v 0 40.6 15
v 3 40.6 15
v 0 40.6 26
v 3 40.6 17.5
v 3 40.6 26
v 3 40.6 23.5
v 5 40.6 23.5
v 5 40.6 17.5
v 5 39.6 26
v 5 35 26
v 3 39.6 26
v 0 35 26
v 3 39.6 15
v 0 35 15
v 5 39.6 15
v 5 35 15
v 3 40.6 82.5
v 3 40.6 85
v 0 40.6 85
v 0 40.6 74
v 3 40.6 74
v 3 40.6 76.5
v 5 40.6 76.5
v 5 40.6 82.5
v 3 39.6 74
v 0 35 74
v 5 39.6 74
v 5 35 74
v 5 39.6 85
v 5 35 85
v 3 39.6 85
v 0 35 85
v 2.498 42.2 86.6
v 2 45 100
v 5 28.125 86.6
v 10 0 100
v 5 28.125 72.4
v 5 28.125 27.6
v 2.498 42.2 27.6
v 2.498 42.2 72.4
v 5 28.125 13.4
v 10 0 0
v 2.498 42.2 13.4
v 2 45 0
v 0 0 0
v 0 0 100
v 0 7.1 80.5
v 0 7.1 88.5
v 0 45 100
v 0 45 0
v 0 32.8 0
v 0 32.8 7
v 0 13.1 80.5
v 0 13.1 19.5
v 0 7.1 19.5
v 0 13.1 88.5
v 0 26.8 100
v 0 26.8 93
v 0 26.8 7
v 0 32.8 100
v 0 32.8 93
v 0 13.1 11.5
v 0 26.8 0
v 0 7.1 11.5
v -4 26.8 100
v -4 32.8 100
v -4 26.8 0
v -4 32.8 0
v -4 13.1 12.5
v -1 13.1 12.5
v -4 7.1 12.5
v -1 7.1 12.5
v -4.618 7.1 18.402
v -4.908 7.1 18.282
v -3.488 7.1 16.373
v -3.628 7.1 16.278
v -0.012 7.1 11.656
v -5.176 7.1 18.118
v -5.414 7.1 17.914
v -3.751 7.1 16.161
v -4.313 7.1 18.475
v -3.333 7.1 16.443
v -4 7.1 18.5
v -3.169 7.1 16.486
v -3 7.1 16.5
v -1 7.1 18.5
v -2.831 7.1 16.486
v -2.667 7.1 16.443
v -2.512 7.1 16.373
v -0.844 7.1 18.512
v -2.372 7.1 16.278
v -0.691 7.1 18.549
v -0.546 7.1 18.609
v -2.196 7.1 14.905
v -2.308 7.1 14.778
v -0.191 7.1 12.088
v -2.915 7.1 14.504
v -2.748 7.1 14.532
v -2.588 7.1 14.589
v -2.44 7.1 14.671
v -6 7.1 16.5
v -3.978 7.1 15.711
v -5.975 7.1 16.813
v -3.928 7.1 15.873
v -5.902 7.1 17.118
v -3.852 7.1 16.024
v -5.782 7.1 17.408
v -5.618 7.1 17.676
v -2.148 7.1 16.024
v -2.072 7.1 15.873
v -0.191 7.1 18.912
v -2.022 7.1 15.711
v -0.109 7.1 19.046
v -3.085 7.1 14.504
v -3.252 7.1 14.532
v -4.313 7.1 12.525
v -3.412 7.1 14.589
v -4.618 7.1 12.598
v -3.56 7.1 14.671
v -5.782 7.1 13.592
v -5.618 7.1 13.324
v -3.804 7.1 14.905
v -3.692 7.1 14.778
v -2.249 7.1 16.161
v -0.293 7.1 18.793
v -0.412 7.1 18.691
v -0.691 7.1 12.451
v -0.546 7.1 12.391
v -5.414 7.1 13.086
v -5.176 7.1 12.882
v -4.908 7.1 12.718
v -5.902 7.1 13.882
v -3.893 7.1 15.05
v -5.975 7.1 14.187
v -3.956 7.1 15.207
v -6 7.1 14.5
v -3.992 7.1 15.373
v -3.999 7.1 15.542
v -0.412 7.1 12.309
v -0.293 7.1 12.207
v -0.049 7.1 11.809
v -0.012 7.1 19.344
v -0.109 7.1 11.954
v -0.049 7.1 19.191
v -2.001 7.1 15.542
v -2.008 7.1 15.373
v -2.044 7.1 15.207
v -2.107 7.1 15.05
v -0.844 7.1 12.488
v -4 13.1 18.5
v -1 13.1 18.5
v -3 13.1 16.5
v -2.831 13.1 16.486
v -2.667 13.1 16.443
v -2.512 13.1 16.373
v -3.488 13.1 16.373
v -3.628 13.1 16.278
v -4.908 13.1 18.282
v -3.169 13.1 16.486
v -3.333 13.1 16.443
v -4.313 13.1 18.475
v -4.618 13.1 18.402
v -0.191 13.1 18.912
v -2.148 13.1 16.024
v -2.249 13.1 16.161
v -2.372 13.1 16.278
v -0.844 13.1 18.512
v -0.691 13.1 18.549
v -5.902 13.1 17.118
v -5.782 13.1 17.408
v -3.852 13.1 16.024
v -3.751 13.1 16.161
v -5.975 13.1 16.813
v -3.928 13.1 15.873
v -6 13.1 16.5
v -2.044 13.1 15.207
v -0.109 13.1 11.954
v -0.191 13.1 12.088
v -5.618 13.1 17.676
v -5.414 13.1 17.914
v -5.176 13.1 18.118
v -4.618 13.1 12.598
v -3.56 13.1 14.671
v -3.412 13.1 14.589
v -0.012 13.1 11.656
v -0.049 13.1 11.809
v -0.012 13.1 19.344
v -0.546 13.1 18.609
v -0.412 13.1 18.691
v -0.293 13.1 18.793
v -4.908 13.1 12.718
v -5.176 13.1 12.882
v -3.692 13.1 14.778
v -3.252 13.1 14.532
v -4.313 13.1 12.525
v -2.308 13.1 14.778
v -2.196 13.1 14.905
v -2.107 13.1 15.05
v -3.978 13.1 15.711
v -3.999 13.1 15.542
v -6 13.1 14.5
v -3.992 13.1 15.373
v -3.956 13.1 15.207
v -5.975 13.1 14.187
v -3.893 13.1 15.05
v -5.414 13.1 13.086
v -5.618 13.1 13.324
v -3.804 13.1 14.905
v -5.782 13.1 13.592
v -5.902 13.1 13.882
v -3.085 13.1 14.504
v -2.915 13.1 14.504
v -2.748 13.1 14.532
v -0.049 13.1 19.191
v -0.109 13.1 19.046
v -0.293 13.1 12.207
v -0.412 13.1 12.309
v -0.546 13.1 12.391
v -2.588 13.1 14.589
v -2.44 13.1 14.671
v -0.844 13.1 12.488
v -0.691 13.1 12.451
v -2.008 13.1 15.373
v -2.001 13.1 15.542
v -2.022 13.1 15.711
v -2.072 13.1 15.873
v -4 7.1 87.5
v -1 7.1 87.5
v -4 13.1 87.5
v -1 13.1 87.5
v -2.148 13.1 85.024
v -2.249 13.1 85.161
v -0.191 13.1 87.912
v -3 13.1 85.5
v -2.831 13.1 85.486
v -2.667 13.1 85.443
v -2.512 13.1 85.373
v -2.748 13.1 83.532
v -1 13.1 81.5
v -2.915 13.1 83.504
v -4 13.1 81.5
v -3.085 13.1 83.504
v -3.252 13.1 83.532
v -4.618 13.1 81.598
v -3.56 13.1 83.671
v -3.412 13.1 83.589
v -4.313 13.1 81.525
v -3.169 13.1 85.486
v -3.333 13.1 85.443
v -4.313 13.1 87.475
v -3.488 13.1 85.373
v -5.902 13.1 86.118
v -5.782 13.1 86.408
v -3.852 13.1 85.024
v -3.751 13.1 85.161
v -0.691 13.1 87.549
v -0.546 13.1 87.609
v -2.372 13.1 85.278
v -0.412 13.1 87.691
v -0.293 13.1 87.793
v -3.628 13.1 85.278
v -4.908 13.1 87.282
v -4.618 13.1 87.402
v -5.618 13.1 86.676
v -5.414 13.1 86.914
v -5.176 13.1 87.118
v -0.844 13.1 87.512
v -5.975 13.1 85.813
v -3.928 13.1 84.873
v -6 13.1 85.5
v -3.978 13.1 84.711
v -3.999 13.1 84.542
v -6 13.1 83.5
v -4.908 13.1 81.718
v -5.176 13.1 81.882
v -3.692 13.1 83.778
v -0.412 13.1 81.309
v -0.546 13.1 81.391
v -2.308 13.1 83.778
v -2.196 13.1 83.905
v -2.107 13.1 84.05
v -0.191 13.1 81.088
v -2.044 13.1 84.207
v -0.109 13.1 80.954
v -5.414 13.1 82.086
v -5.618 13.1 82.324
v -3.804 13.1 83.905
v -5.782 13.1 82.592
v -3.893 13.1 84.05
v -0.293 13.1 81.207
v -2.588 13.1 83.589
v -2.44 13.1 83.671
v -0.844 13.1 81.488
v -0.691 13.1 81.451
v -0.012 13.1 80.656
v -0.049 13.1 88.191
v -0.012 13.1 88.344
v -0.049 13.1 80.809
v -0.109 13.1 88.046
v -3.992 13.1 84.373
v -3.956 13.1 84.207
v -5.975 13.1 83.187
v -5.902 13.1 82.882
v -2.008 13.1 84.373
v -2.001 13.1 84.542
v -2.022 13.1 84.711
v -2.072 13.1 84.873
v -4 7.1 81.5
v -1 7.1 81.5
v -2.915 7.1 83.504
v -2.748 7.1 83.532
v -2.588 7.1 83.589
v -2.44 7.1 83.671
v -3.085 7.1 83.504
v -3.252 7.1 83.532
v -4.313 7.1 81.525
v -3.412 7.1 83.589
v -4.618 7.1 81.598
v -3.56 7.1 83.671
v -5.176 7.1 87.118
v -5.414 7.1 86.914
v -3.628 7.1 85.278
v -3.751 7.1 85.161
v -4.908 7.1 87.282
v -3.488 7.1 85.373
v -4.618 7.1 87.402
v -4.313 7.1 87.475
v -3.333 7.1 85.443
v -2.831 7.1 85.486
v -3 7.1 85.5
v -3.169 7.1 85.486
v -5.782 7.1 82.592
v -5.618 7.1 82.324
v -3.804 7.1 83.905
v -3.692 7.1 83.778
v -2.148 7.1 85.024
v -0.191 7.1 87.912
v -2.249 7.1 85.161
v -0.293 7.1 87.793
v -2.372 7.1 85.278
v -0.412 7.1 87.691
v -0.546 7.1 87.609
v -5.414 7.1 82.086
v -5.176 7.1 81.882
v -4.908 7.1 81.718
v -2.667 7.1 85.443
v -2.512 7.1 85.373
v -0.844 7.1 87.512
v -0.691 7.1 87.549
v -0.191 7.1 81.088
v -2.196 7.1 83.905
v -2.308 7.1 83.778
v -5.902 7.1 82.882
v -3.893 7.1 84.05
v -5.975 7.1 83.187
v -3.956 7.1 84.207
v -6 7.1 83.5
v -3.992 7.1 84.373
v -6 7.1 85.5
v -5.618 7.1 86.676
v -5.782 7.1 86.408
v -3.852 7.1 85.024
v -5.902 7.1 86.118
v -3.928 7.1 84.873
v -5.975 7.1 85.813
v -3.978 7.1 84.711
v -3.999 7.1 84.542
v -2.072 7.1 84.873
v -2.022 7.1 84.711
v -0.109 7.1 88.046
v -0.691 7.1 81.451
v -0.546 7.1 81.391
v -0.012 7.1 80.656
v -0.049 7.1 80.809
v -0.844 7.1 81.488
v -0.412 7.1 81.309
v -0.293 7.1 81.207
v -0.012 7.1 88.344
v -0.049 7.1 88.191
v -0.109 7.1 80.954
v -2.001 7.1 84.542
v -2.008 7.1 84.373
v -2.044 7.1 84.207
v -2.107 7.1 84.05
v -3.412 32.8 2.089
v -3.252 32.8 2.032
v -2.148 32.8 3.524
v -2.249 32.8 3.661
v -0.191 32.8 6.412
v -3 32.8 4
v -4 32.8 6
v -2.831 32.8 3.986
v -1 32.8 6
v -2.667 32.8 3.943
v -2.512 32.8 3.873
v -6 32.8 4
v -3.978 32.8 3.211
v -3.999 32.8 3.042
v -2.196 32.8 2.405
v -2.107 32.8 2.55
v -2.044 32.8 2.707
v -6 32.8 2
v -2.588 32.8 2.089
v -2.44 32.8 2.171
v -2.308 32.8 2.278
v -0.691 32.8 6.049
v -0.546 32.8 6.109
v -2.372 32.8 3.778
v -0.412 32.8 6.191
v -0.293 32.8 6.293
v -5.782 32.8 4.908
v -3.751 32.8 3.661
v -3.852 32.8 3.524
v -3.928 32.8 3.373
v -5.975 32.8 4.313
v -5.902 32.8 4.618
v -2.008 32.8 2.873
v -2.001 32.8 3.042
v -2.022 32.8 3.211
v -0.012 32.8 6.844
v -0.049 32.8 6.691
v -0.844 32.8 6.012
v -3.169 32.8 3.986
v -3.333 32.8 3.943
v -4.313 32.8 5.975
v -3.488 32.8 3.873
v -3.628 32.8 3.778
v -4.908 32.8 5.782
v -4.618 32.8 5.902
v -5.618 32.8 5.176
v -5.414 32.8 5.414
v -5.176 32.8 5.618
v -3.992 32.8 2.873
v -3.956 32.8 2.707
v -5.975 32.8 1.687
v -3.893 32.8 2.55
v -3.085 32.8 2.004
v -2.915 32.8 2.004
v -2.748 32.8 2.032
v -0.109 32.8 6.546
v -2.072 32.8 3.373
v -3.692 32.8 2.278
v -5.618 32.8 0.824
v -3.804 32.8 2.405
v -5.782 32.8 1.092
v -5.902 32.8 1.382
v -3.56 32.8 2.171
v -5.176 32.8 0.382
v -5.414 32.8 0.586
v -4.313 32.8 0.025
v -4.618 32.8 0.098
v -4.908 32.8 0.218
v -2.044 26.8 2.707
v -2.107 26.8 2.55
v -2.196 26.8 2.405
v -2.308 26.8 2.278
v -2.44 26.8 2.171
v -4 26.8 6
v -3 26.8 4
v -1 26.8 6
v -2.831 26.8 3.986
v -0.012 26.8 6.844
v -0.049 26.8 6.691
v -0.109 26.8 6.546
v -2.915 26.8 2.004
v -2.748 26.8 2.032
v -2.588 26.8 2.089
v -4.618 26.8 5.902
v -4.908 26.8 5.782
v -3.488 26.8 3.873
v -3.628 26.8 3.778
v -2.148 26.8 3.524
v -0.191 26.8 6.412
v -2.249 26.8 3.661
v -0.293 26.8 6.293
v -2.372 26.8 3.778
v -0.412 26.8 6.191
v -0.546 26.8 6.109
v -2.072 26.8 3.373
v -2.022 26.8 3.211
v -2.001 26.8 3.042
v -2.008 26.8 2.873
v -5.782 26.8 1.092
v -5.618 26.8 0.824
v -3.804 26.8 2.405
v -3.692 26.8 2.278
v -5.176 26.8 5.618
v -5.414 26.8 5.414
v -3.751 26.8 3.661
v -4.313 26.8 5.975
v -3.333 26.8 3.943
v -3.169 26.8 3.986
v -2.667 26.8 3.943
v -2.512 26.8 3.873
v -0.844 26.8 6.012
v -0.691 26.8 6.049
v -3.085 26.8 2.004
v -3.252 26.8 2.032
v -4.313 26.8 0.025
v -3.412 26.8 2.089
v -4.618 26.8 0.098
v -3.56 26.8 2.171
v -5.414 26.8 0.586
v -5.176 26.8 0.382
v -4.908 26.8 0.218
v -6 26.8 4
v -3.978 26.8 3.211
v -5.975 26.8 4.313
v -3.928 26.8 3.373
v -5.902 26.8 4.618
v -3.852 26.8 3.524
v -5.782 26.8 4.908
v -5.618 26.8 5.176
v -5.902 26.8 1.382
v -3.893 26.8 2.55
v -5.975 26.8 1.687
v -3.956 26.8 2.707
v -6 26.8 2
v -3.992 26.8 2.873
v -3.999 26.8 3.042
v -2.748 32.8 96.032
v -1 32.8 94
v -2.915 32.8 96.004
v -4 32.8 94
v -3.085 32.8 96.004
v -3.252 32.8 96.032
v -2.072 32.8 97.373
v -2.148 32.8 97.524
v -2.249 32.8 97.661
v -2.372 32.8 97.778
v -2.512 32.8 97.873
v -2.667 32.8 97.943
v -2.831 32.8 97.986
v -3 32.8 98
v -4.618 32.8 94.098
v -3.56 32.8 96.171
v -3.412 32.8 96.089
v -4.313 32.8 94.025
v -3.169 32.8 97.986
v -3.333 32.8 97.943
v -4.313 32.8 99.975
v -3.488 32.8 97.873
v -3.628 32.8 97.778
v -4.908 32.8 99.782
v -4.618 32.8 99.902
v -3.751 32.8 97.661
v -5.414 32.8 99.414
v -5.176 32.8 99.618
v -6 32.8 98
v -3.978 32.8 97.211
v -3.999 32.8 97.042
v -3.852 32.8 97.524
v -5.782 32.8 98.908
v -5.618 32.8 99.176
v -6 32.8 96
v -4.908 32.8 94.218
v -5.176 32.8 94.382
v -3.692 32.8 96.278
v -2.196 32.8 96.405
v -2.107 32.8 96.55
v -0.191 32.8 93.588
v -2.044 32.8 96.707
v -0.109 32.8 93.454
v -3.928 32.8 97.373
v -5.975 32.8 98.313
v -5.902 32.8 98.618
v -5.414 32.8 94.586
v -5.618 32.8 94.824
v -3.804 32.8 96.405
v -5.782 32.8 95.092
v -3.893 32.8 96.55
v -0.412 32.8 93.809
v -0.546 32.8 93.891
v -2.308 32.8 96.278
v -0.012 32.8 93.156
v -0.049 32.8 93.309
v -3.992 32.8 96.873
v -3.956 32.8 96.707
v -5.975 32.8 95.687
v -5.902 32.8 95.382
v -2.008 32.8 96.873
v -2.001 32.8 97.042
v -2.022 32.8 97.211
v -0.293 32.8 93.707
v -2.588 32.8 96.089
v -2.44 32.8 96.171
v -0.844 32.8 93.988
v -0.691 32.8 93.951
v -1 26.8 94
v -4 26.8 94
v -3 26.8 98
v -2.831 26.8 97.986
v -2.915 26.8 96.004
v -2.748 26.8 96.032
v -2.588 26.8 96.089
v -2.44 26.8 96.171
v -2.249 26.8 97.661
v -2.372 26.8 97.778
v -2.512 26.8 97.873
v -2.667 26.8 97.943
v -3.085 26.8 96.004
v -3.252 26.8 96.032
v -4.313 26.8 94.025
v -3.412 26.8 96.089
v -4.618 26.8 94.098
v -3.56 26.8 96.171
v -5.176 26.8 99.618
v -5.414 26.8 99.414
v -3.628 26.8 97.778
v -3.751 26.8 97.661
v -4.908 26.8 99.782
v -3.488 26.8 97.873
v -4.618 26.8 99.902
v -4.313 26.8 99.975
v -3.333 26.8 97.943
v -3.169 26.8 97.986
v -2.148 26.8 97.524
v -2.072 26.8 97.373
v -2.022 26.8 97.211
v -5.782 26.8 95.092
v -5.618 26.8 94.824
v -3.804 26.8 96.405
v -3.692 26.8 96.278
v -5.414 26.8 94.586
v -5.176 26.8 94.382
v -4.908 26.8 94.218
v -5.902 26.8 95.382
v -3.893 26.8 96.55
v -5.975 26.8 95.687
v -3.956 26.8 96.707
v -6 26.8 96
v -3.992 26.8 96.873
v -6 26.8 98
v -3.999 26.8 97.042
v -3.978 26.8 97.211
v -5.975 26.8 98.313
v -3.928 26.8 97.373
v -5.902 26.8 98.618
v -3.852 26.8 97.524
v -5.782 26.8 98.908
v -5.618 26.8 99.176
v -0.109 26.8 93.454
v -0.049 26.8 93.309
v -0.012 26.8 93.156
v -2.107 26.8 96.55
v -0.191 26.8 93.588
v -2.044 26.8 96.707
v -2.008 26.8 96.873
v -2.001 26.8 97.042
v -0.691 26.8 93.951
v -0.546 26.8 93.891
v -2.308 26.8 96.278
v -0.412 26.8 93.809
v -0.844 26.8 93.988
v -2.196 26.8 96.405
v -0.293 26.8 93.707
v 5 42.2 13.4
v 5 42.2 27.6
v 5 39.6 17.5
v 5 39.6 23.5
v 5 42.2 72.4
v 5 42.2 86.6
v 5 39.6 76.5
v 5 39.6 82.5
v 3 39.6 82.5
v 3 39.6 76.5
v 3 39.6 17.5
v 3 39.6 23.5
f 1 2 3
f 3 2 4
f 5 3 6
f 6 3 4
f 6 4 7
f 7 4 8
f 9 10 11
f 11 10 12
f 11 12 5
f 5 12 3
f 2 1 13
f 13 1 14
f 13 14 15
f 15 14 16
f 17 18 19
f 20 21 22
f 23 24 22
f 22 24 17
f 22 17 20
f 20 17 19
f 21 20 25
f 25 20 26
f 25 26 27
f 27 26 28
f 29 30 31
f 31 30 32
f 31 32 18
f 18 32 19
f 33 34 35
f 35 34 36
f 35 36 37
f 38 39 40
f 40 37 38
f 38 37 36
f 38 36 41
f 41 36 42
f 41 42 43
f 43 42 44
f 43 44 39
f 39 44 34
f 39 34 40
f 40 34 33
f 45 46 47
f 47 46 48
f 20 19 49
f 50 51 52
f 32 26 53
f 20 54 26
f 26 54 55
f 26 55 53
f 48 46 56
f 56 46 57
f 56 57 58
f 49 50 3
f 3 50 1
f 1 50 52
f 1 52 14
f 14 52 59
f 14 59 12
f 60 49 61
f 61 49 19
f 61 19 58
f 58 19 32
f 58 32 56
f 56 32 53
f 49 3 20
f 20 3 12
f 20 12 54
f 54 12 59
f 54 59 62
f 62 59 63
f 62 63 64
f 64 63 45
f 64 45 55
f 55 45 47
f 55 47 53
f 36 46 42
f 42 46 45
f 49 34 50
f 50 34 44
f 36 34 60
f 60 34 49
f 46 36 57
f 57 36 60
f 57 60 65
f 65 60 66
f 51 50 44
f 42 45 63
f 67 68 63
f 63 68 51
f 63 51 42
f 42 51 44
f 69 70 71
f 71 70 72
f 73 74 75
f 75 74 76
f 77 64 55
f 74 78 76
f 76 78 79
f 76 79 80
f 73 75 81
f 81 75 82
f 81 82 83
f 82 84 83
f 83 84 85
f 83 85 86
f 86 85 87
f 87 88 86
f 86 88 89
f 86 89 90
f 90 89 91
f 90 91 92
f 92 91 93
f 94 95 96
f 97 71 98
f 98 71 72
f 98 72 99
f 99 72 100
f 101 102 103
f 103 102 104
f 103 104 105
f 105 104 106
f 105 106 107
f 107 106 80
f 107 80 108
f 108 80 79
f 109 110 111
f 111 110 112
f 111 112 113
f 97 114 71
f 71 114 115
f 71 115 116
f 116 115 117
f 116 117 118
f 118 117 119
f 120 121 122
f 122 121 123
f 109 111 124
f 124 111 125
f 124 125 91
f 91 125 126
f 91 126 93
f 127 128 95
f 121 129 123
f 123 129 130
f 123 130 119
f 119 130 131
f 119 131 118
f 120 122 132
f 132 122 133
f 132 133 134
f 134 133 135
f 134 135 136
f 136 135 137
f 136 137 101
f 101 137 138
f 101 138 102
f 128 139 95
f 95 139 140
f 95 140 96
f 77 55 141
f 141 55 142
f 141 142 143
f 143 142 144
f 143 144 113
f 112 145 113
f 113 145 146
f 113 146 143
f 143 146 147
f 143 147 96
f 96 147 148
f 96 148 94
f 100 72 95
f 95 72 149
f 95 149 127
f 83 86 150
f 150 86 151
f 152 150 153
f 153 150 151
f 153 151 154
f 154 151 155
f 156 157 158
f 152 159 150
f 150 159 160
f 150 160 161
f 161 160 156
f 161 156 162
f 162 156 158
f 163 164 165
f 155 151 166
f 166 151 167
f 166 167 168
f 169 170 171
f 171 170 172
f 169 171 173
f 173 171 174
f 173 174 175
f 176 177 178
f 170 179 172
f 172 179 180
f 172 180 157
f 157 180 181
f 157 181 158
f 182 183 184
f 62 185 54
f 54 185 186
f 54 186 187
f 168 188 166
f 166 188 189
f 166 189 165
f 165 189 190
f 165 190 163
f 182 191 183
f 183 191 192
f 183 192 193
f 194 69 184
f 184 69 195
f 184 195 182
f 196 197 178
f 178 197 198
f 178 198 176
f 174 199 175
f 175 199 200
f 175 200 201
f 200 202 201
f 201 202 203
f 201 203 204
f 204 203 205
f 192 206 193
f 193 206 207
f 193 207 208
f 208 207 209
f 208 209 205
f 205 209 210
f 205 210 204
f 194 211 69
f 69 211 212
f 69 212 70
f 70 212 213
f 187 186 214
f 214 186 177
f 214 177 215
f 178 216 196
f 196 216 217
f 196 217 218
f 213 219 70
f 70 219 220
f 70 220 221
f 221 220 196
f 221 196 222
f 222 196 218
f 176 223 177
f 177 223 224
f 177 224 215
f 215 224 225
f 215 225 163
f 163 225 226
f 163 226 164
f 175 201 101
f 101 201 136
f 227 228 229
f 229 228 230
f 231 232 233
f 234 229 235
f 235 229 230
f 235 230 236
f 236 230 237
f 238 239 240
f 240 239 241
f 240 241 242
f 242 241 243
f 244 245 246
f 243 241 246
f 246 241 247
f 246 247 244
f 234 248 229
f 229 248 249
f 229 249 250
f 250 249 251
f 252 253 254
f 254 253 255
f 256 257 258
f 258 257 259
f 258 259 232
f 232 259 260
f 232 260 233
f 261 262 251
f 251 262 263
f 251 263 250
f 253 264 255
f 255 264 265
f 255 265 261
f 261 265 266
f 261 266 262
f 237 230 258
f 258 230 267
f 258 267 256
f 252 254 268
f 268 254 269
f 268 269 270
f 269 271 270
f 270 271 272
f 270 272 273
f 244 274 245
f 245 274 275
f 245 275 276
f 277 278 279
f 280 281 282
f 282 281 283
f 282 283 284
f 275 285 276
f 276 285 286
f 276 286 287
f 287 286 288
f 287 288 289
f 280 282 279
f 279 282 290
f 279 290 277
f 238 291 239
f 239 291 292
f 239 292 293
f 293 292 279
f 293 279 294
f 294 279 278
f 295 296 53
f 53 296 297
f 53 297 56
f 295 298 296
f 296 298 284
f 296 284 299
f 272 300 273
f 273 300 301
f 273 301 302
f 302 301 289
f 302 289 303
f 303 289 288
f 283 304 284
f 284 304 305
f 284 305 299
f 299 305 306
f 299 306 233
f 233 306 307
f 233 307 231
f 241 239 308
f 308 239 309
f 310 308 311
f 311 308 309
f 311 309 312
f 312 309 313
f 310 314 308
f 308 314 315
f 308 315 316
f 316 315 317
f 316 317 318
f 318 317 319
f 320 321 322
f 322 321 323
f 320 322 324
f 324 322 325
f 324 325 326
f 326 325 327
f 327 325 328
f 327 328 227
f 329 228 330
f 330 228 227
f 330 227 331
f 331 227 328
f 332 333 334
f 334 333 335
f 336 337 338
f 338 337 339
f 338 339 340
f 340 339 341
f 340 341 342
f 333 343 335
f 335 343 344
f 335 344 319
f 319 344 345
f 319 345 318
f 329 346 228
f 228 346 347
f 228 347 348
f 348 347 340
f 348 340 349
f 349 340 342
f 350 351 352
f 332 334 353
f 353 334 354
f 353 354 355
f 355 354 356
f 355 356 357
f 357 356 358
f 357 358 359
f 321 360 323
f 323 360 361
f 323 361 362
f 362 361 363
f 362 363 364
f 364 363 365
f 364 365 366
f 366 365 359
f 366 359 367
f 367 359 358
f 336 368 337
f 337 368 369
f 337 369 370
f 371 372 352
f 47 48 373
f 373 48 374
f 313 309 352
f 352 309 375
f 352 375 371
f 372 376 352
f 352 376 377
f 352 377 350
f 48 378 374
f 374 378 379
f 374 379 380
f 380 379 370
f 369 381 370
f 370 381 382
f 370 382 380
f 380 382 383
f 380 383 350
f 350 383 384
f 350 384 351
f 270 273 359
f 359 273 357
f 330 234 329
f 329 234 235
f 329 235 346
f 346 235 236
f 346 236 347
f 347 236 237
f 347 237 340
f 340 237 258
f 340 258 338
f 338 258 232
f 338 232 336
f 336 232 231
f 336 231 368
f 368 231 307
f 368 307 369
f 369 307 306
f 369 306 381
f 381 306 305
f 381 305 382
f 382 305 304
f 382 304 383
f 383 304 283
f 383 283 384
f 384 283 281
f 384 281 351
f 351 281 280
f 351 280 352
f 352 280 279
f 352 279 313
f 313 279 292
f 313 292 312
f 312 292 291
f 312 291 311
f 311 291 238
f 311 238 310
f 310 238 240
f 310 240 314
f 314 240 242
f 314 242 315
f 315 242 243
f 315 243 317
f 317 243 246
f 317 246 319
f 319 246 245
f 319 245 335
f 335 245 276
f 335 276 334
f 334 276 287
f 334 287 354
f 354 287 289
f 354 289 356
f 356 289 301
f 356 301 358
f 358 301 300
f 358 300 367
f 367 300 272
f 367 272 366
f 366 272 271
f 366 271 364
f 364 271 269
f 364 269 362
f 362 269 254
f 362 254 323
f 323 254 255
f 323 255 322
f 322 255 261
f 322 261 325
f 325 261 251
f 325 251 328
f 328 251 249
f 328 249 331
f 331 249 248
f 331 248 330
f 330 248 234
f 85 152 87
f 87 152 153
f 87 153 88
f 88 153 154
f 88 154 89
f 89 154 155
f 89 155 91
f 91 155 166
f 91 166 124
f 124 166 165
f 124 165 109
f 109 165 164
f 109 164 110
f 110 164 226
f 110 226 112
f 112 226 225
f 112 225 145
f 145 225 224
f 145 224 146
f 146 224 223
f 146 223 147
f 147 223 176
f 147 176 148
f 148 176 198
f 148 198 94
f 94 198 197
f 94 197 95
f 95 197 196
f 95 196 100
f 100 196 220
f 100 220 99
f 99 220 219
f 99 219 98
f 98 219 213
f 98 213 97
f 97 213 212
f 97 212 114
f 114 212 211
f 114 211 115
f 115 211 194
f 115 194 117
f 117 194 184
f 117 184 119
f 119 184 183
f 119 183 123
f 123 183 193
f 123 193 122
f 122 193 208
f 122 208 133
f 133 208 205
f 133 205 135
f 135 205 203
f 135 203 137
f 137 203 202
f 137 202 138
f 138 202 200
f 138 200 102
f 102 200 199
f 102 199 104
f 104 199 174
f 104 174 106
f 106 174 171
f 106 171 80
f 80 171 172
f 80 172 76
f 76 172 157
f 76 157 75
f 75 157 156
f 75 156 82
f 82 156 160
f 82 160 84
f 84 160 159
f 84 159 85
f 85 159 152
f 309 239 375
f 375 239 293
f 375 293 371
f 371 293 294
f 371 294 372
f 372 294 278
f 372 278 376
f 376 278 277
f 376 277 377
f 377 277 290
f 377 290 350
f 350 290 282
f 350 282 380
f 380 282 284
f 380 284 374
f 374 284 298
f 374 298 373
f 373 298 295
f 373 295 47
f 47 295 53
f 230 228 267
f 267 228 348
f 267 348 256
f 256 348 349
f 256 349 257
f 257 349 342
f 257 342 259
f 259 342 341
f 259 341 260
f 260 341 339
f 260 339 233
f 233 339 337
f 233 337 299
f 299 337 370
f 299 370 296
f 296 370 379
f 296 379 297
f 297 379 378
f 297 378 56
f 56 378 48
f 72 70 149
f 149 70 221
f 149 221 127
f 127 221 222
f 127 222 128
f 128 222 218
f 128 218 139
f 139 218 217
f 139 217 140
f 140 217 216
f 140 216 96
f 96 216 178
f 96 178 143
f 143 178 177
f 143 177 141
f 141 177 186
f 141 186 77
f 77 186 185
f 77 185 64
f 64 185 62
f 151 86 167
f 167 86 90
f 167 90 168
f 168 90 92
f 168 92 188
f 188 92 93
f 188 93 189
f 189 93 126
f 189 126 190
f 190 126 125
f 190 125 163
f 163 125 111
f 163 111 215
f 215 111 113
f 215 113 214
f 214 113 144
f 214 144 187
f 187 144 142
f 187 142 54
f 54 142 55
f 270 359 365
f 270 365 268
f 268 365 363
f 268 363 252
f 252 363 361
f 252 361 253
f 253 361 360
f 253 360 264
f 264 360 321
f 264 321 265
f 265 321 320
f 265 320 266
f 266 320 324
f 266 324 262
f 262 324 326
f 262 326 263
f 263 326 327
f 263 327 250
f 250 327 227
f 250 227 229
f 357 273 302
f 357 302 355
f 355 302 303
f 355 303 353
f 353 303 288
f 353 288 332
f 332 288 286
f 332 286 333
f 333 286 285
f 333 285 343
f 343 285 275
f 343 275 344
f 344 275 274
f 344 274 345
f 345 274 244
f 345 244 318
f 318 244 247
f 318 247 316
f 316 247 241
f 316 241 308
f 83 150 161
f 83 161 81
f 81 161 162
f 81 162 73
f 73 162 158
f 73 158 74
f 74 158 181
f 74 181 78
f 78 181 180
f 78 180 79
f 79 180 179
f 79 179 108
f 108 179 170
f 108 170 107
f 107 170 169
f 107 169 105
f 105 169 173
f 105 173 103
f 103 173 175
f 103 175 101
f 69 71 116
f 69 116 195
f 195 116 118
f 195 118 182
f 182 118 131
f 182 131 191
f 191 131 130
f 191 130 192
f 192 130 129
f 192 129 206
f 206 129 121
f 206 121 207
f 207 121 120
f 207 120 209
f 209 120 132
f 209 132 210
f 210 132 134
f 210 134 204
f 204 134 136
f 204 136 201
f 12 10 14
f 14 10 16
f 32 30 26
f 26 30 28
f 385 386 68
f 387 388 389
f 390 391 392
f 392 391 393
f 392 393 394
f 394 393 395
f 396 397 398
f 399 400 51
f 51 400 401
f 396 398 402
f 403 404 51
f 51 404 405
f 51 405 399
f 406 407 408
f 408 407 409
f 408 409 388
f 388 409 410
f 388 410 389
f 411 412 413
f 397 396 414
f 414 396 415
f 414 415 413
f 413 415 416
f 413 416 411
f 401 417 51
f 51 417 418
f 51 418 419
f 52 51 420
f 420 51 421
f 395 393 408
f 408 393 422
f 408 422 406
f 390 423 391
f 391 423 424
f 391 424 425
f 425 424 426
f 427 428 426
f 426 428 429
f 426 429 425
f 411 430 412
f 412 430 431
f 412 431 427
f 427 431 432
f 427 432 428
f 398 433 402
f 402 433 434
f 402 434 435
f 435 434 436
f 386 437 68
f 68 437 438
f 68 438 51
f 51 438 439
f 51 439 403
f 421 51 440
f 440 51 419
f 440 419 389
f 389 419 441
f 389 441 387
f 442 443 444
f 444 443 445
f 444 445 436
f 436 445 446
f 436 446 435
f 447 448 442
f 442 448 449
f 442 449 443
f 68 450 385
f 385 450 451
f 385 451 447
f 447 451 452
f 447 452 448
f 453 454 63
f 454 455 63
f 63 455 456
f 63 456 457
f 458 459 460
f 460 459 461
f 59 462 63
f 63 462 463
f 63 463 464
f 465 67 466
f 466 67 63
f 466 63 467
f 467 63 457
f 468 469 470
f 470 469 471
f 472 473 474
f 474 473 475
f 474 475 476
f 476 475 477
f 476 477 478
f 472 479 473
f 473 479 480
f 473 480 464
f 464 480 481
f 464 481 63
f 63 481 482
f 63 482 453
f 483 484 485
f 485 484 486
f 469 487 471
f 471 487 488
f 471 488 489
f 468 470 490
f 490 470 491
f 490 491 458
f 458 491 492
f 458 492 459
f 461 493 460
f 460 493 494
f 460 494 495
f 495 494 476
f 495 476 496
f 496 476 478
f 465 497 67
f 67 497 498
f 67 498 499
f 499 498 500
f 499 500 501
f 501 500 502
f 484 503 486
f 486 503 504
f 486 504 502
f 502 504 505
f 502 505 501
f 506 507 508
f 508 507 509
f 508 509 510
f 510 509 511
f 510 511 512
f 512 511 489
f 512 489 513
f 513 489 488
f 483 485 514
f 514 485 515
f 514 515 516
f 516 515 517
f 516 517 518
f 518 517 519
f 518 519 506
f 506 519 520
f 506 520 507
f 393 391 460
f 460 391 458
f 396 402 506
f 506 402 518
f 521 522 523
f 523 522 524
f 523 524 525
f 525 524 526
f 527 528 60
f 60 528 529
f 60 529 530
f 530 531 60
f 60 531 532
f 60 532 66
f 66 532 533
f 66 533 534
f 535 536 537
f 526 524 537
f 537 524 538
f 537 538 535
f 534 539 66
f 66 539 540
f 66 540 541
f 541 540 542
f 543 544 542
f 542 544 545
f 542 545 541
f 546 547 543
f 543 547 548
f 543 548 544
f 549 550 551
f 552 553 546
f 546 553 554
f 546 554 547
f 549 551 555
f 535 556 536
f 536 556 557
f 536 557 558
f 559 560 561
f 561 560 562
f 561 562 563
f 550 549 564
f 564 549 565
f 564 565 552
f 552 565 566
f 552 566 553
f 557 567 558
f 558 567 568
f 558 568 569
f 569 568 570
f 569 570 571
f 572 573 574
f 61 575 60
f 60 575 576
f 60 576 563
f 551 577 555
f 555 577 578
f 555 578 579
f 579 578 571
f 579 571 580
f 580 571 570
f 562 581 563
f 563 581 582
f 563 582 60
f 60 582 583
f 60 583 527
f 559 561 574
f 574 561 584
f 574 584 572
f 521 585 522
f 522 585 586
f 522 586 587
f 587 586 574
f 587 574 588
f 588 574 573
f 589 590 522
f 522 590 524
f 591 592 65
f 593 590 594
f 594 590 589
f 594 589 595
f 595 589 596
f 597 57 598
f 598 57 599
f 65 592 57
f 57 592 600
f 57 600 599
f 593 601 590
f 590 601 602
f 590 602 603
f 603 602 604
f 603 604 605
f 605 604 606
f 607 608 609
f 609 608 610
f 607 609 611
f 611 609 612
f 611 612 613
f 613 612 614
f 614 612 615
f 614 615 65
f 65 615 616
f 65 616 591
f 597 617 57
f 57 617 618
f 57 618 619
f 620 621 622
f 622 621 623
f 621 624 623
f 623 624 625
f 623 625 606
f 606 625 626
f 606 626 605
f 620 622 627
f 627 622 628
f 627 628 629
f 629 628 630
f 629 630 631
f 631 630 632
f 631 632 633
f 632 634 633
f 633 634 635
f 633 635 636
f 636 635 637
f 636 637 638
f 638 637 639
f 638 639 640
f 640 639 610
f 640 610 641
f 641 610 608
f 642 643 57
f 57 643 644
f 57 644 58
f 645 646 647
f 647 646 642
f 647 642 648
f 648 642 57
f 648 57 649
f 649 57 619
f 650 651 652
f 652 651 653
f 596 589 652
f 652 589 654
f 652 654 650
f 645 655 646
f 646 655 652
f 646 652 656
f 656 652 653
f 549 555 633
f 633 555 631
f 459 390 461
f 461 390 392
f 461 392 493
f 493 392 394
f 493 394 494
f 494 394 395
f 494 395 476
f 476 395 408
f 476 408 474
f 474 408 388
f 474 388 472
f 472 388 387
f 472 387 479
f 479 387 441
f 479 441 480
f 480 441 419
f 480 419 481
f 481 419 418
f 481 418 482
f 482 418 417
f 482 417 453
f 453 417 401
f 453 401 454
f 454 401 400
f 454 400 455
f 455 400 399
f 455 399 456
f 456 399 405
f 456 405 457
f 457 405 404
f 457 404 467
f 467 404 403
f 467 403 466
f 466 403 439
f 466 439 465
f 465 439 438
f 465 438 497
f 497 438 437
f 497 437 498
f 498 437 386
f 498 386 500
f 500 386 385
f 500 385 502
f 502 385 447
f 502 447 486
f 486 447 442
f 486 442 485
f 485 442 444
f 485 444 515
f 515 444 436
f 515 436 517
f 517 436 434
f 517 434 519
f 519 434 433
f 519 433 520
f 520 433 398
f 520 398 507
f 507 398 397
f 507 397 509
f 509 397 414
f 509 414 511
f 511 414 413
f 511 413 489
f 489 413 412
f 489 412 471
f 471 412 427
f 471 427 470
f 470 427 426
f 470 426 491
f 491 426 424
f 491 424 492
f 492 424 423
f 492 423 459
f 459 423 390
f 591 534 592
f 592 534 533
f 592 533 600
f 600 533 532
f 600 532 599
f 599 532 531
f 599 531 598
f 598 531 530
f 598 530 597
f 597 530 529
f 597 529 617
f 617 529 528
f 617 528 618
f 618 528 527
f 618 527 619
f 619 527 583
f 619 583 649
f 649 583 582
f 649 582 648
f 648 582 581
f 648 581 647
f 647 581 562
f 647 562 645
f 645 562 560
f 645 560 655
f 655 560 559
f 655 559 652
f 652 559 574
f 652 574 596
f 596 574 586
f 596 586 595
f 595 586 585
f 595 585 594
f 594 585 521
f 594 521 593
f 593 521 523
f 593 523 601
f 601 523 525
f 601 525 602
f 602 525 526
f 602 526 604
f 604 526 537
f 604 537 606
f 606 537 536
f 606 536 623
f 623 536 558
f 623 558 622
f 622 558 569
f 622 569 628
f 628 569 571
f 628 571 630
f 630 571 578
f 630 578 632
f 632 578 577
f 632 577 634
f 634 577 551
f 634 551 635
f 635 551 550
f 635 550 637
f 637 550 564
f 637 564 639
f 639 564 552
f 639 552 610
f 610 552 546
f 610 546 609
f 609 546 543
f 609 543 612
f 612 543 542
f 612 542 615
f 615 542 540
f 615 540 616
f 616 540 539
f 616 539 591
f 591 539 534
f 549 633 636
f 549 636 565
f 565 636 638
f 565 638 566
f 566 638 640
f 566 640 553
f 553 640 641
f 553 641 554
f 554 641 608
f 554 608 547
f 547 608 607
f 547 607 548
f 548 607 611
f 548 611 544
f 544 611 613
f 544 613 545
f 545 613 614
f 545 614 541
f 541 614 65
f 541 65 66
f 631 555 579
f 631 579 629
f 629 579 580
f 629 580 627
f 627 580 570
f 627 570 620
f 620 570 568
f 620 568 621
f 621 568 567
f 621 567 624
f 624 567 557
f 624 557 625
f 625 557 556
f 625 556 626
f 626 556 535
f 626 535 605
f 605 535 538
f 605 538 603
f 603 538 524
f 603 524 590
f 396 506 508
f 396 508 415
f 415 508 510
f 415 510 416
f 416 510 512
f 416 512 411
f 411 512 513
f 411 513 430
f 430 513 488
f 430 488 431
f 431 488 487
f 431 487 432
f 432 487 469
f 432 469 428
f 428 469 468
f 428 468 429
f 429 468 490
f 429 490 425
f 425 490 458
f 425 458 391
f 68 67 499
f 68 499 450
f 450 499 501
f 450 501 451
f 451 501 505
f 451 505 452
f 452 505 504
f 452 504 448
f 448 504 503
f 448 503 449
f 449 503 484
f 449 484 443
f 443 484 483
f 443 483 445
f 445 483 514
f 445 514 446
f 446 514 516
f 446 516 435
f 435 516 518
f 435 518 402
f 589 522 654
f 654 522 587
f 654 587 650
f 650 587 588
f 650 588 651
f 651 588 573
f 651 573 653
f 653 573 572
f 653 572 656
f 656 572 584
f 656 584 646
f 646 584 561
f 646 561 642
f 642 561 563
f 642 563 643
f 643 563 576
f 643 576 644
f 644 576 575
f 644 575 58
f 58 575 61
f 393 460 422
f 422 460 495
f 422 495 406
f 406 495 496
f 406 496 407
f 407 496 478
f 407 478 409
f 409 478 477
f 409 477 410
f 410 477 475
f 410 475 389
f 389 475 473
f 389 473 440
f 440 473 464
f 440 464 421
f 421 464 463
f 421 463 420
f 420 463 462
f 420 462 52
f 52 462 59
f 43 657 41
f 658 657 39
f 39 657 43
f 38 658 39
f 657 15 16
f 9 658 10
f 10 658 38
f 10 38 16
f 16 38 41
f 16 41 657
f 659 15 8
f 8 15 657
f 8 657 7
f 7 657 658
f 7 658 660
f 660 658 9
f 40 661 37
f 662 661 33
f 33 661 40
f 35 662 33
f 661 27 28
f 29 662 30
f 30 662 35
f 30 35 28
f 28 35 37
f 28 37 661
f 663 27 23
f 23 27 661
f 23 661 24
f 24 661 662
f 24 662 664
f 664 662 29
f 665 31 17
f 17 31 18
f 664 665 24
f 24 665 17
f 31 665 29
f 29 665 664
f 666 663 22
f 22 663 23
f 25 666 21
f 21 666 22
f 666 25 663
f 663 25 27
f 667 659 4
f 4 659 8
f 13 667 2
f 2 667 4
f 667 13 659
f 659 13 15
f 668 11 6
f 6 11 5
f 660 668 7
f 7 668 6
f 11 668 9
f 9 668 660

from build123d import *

# Parameters (mm, degrees)
BOSS_EXTRUDE1_DEPTH = 100
SKETCH3_W           = 6
SKETCH3_H           = 6
BOSS_EXTRUDE2_DEPTH = 6
SKETCH4_R           = 1
CUT_EXTRUDE2_DEPTH  = 10
SKETCH5_R           = 1
CUT_EXTRUDE3_DEPTH  = 10
FILLET1_R           = 1
FILLET2_R           = 2
SKETCH7_W           = 11
SKETCH7_H           = 5.6
CUT_EXTRUDE4_DEPTH  = 10
SKETCH13_W          = 6
SKETCH13_H          = 6
BOSS_EXTRUDE3_DEPTH = 6
SKETCH14_R          = 1
CUT_EXTRUDE7_DEPTH  = 6
SKETCH16_R          = 1
CUT_EXTRUDE8_DEPTH  = 6
FILLET3_R           = 2
FILLET4_R           = 1
BOSS_EXTRUDE4_DEPTH = 5
BOSS_EXTRUDE5_DEPTH = 5
SKETCH19_W          = 0.937777778
SKETCH19_H          = 14.2
BOSS_EXTRUDE6_DEPTH = 10
SKETCH20_W          = 0.937777778
SKETCH20_H          = 14.2
BOSS_EXTRUDE7_DEPTH = 10
SKETCH21_W          = 2
SKETCH21_H          = 2.5
BOSS_EXTRUDE8_DEPTH = 1
SKETCH22_W          = 2
SKETCH22_H          = 2.5
BOSS_EXTRUDE9_DEPTH = 1


with BuildPart() as part:
    # Sketch1 → Boss-Extrude1 (new body)
    with BuildSketch(Plane.XY):
        Polygon((0, 0), (10, 0), (2, 45), (0, 45), align=None)
    extrude(amount=BOSS_EXTRUDE1_DEPTH)

    # Sketch3 → Boss-Extrude2 (add)
    with BuildSketch(Plane.ZY):
        with Locations((15.5, 10.1)):
            Rectangle(SKETCH3_W, SKETCH3_H)
        with Locations((84.5, 10.1)):
            Rectangle(SKETCH3_W, SKETCH3_H)
    extrude(amount=BOSS_EXTRUDE2_DEPTH)

    # Sketch4 → Cut-Extrude2 (cut)
    with BuildSketch(Plane(origin=(0, 13.1, 0), x_dir=(1, 0, 0), z_dir=(0, 1, 0))):
        with Locations((-3, -84.5)):
            Circle(SKETCH4_R)
    extrude(amount=-CUT_EXTRUDE2_DEPTH, mode=Mode.SUBTRACT)

    # Sketch5 → Cut-Extrude3 (cut)
    with BuildSketch(Plane(origin=(0, 13.1, 0), x_dir=(1, 0, 0), z_dir=(0, 1, 0))):
        with Locations((-3, -15.5)):
            Circle(SKETCH5_R)
    extrude(amount=-CUT_EXTRUDE3_DEPTH, mode=Mode.SUBTRACT)

    # Fillet1
    fillet1_edges = [part.edges().sort_by_distance(p)[0] for p in [
        (0, 10.1, 12.5),
        (0, 10.1, 18.5),
        (0, 10.1, 87.5),
        (0, 10.1, 81.5),
    ]]
    fillet(fillet1_edges, radius=FILLET1_R)

    # Fillet2
    fillet2_edges = [part.edges().sort_by_distance(p)[0] for p in [
        (-6, 10.1, 12.5),
        (-6, 10.1, 18.5),
        (-6, 10.1, 87.5),
        (-6, 10.1, 81.5),
    ]]
    fillet(fillet2_edges, radius=FILLET2_R)

    # Sketch7 → Cut-Extrude4 (cut)
    with BuildSketch(Plane.ZY):
        with Locations((20.5, 37.8)):
            Rectangle(SKETCH7_W, SKETCH7_H)
        with Locations((79.5, 37.8)):
            Rectangle(SKETCH7_W, SKETCH7_H)
    extrude(amount=-CUT_EXTRUDE4_DEPTH, mode=Mode.SUBTRACT)

    # Sketch13 → Boss-Extrude3 (add)
    with BuildSketch(Plane.ZY):
        with Locations((3, 29.8)):
            Rectangle(SKETCH13_W, SKETCH13_H)
        with Locations((97, 29.8)):
            Rectangle(SKETCH13_W, SKETCH13_H)
    extrude(amount=BOSS_EXTRUDE3_DEPTH)

    # Sketch14 → Cut-Extrude7 (cut)
    with BuildSketch(Plane(origin=(0, 32.8, 0), x_dir=(1, 0, 0), z_dir=(0, 1, 0))):
        with Locations((-3, -3)):
            Circle(SKETCH14_R)
    extrude(amount=-CUT_EXTRUDE7_DEPTH, mode=Mode.SUBTRACT)

    # Sketch16 → Cut-Extrude8 (cut)
    with BuildSketch(Plane(origin=(0, 32.8, 0), x_dir=(1, 0, 0), z_dir=(0, 1, 0))):
        with Locations((-3, -97)):
            Circle(SKETCH16_R)
    extrude(amount=-CUT_EXTRUDE8_DEPTH, mode=Mode.SUBTRACT)

    # Fillet3
    fillet3_edges = [part.edges().sort_by_distance(p)[0] for p in [
        (-6, 29.8, 0),
        (-6, 29.8, 6),
        (-6, 29.8, 94),
        (-6, 29.8, 100),
    ]]
    fillet(fillet3_edges, radius=FILLET3_R)

    # Fillet4
    fillet4_edges = [part.edges().sort_by_distance(p)[0] for p in [
        (0, 29.8, 6),
        (0, 29.8, 94),
    ]]
    fillet(fillet4_edges, radius=FILLET4_R)

    # Sketch17 → Boss-Extrude4 (add)
    with BuildSketch(Plane.ZY):
        Polygon((15, 35), (13.4, 35), (13.4, 42.2), (15, 42.2), (27.6, 42.2), (27.6, 35), (26, 35), (26, 40.6), (15, 40.6), align=None)
        Polygon((74, 35), (72.4, 35), (72.4, 42.2), (74, 42.2), (86.6, 42.2), (86.6, 35), (85, 35), (85, 40.6), (74, 40.6), align=None)
    extrude(amount=-BOSS_EXTRUDE4_DEPTH)

    # Sketch18 → Boss-Extrude5 (add)
    with BuildSketch(Plane.ZY):
        Polygon((15, 35), (13.4, 35), (13.4, 33.4), (27.6, 33.4), (27.6, 35), (26, 35), align=None)
        Polygon((74, 35), (72.4, 35), (72.4, 33.4), (86.6, 33.4), (86.6, 35), (85, 35), align=None)
    extrude(amount=-BOSS_EXTRUDE5_DEPTH)

    # Sketch19 → Boss-Extrude6 (add)
    with BuildSketch(Plane.XZ.offset(-33.4)):
        with Locations((4.531111111, 79.5)):
            Rectangle(SKETCH19_W, SKETCH19_H)
    extrude(amount=BOSS_EXTRUDE6_DEPTH)

    # Sketch20 → Boss-Extrude7 (add)
    with BuildSketch(Plane.XZ.offset(-33.4)):
        with Locations((4.531111111, 20.5)):
            Rectangle(SKETCH20_W, SKETCH20_H)
    extrude(amount=BOSS_EXTRUDE7_DEPTH)

    # Sketch21 → Boss-Extrude8 (add)
    with BuildSketch(Plane.XZ.offset(-40.6)):
        with Locations((4, 83.75)):
            Rectangle(SKETCH21_W, SKETCH21_H)
        with Locations((4, 75.25)):
            Rectangle(SKETCH21_W, SKETCH21_H)
    extrude(amount=BOSS_EXTRUDE8_DEPTH)

    # Sketch22 → Boss-Extrude9 (add)
    with BuildSketch(Plane.XZ.offset(-40.6)):
        with Locations((4, 16.25)):
            Rectangle(SKETCH22_W, SKETCH22_H)
        with Locations((4, 24.75)):
            Rectangle(SKETCH22_W, SKETCH22_H)
    extrude(amount=BOSS_EXTRUDE9_DEPTH)


solid = part.part
